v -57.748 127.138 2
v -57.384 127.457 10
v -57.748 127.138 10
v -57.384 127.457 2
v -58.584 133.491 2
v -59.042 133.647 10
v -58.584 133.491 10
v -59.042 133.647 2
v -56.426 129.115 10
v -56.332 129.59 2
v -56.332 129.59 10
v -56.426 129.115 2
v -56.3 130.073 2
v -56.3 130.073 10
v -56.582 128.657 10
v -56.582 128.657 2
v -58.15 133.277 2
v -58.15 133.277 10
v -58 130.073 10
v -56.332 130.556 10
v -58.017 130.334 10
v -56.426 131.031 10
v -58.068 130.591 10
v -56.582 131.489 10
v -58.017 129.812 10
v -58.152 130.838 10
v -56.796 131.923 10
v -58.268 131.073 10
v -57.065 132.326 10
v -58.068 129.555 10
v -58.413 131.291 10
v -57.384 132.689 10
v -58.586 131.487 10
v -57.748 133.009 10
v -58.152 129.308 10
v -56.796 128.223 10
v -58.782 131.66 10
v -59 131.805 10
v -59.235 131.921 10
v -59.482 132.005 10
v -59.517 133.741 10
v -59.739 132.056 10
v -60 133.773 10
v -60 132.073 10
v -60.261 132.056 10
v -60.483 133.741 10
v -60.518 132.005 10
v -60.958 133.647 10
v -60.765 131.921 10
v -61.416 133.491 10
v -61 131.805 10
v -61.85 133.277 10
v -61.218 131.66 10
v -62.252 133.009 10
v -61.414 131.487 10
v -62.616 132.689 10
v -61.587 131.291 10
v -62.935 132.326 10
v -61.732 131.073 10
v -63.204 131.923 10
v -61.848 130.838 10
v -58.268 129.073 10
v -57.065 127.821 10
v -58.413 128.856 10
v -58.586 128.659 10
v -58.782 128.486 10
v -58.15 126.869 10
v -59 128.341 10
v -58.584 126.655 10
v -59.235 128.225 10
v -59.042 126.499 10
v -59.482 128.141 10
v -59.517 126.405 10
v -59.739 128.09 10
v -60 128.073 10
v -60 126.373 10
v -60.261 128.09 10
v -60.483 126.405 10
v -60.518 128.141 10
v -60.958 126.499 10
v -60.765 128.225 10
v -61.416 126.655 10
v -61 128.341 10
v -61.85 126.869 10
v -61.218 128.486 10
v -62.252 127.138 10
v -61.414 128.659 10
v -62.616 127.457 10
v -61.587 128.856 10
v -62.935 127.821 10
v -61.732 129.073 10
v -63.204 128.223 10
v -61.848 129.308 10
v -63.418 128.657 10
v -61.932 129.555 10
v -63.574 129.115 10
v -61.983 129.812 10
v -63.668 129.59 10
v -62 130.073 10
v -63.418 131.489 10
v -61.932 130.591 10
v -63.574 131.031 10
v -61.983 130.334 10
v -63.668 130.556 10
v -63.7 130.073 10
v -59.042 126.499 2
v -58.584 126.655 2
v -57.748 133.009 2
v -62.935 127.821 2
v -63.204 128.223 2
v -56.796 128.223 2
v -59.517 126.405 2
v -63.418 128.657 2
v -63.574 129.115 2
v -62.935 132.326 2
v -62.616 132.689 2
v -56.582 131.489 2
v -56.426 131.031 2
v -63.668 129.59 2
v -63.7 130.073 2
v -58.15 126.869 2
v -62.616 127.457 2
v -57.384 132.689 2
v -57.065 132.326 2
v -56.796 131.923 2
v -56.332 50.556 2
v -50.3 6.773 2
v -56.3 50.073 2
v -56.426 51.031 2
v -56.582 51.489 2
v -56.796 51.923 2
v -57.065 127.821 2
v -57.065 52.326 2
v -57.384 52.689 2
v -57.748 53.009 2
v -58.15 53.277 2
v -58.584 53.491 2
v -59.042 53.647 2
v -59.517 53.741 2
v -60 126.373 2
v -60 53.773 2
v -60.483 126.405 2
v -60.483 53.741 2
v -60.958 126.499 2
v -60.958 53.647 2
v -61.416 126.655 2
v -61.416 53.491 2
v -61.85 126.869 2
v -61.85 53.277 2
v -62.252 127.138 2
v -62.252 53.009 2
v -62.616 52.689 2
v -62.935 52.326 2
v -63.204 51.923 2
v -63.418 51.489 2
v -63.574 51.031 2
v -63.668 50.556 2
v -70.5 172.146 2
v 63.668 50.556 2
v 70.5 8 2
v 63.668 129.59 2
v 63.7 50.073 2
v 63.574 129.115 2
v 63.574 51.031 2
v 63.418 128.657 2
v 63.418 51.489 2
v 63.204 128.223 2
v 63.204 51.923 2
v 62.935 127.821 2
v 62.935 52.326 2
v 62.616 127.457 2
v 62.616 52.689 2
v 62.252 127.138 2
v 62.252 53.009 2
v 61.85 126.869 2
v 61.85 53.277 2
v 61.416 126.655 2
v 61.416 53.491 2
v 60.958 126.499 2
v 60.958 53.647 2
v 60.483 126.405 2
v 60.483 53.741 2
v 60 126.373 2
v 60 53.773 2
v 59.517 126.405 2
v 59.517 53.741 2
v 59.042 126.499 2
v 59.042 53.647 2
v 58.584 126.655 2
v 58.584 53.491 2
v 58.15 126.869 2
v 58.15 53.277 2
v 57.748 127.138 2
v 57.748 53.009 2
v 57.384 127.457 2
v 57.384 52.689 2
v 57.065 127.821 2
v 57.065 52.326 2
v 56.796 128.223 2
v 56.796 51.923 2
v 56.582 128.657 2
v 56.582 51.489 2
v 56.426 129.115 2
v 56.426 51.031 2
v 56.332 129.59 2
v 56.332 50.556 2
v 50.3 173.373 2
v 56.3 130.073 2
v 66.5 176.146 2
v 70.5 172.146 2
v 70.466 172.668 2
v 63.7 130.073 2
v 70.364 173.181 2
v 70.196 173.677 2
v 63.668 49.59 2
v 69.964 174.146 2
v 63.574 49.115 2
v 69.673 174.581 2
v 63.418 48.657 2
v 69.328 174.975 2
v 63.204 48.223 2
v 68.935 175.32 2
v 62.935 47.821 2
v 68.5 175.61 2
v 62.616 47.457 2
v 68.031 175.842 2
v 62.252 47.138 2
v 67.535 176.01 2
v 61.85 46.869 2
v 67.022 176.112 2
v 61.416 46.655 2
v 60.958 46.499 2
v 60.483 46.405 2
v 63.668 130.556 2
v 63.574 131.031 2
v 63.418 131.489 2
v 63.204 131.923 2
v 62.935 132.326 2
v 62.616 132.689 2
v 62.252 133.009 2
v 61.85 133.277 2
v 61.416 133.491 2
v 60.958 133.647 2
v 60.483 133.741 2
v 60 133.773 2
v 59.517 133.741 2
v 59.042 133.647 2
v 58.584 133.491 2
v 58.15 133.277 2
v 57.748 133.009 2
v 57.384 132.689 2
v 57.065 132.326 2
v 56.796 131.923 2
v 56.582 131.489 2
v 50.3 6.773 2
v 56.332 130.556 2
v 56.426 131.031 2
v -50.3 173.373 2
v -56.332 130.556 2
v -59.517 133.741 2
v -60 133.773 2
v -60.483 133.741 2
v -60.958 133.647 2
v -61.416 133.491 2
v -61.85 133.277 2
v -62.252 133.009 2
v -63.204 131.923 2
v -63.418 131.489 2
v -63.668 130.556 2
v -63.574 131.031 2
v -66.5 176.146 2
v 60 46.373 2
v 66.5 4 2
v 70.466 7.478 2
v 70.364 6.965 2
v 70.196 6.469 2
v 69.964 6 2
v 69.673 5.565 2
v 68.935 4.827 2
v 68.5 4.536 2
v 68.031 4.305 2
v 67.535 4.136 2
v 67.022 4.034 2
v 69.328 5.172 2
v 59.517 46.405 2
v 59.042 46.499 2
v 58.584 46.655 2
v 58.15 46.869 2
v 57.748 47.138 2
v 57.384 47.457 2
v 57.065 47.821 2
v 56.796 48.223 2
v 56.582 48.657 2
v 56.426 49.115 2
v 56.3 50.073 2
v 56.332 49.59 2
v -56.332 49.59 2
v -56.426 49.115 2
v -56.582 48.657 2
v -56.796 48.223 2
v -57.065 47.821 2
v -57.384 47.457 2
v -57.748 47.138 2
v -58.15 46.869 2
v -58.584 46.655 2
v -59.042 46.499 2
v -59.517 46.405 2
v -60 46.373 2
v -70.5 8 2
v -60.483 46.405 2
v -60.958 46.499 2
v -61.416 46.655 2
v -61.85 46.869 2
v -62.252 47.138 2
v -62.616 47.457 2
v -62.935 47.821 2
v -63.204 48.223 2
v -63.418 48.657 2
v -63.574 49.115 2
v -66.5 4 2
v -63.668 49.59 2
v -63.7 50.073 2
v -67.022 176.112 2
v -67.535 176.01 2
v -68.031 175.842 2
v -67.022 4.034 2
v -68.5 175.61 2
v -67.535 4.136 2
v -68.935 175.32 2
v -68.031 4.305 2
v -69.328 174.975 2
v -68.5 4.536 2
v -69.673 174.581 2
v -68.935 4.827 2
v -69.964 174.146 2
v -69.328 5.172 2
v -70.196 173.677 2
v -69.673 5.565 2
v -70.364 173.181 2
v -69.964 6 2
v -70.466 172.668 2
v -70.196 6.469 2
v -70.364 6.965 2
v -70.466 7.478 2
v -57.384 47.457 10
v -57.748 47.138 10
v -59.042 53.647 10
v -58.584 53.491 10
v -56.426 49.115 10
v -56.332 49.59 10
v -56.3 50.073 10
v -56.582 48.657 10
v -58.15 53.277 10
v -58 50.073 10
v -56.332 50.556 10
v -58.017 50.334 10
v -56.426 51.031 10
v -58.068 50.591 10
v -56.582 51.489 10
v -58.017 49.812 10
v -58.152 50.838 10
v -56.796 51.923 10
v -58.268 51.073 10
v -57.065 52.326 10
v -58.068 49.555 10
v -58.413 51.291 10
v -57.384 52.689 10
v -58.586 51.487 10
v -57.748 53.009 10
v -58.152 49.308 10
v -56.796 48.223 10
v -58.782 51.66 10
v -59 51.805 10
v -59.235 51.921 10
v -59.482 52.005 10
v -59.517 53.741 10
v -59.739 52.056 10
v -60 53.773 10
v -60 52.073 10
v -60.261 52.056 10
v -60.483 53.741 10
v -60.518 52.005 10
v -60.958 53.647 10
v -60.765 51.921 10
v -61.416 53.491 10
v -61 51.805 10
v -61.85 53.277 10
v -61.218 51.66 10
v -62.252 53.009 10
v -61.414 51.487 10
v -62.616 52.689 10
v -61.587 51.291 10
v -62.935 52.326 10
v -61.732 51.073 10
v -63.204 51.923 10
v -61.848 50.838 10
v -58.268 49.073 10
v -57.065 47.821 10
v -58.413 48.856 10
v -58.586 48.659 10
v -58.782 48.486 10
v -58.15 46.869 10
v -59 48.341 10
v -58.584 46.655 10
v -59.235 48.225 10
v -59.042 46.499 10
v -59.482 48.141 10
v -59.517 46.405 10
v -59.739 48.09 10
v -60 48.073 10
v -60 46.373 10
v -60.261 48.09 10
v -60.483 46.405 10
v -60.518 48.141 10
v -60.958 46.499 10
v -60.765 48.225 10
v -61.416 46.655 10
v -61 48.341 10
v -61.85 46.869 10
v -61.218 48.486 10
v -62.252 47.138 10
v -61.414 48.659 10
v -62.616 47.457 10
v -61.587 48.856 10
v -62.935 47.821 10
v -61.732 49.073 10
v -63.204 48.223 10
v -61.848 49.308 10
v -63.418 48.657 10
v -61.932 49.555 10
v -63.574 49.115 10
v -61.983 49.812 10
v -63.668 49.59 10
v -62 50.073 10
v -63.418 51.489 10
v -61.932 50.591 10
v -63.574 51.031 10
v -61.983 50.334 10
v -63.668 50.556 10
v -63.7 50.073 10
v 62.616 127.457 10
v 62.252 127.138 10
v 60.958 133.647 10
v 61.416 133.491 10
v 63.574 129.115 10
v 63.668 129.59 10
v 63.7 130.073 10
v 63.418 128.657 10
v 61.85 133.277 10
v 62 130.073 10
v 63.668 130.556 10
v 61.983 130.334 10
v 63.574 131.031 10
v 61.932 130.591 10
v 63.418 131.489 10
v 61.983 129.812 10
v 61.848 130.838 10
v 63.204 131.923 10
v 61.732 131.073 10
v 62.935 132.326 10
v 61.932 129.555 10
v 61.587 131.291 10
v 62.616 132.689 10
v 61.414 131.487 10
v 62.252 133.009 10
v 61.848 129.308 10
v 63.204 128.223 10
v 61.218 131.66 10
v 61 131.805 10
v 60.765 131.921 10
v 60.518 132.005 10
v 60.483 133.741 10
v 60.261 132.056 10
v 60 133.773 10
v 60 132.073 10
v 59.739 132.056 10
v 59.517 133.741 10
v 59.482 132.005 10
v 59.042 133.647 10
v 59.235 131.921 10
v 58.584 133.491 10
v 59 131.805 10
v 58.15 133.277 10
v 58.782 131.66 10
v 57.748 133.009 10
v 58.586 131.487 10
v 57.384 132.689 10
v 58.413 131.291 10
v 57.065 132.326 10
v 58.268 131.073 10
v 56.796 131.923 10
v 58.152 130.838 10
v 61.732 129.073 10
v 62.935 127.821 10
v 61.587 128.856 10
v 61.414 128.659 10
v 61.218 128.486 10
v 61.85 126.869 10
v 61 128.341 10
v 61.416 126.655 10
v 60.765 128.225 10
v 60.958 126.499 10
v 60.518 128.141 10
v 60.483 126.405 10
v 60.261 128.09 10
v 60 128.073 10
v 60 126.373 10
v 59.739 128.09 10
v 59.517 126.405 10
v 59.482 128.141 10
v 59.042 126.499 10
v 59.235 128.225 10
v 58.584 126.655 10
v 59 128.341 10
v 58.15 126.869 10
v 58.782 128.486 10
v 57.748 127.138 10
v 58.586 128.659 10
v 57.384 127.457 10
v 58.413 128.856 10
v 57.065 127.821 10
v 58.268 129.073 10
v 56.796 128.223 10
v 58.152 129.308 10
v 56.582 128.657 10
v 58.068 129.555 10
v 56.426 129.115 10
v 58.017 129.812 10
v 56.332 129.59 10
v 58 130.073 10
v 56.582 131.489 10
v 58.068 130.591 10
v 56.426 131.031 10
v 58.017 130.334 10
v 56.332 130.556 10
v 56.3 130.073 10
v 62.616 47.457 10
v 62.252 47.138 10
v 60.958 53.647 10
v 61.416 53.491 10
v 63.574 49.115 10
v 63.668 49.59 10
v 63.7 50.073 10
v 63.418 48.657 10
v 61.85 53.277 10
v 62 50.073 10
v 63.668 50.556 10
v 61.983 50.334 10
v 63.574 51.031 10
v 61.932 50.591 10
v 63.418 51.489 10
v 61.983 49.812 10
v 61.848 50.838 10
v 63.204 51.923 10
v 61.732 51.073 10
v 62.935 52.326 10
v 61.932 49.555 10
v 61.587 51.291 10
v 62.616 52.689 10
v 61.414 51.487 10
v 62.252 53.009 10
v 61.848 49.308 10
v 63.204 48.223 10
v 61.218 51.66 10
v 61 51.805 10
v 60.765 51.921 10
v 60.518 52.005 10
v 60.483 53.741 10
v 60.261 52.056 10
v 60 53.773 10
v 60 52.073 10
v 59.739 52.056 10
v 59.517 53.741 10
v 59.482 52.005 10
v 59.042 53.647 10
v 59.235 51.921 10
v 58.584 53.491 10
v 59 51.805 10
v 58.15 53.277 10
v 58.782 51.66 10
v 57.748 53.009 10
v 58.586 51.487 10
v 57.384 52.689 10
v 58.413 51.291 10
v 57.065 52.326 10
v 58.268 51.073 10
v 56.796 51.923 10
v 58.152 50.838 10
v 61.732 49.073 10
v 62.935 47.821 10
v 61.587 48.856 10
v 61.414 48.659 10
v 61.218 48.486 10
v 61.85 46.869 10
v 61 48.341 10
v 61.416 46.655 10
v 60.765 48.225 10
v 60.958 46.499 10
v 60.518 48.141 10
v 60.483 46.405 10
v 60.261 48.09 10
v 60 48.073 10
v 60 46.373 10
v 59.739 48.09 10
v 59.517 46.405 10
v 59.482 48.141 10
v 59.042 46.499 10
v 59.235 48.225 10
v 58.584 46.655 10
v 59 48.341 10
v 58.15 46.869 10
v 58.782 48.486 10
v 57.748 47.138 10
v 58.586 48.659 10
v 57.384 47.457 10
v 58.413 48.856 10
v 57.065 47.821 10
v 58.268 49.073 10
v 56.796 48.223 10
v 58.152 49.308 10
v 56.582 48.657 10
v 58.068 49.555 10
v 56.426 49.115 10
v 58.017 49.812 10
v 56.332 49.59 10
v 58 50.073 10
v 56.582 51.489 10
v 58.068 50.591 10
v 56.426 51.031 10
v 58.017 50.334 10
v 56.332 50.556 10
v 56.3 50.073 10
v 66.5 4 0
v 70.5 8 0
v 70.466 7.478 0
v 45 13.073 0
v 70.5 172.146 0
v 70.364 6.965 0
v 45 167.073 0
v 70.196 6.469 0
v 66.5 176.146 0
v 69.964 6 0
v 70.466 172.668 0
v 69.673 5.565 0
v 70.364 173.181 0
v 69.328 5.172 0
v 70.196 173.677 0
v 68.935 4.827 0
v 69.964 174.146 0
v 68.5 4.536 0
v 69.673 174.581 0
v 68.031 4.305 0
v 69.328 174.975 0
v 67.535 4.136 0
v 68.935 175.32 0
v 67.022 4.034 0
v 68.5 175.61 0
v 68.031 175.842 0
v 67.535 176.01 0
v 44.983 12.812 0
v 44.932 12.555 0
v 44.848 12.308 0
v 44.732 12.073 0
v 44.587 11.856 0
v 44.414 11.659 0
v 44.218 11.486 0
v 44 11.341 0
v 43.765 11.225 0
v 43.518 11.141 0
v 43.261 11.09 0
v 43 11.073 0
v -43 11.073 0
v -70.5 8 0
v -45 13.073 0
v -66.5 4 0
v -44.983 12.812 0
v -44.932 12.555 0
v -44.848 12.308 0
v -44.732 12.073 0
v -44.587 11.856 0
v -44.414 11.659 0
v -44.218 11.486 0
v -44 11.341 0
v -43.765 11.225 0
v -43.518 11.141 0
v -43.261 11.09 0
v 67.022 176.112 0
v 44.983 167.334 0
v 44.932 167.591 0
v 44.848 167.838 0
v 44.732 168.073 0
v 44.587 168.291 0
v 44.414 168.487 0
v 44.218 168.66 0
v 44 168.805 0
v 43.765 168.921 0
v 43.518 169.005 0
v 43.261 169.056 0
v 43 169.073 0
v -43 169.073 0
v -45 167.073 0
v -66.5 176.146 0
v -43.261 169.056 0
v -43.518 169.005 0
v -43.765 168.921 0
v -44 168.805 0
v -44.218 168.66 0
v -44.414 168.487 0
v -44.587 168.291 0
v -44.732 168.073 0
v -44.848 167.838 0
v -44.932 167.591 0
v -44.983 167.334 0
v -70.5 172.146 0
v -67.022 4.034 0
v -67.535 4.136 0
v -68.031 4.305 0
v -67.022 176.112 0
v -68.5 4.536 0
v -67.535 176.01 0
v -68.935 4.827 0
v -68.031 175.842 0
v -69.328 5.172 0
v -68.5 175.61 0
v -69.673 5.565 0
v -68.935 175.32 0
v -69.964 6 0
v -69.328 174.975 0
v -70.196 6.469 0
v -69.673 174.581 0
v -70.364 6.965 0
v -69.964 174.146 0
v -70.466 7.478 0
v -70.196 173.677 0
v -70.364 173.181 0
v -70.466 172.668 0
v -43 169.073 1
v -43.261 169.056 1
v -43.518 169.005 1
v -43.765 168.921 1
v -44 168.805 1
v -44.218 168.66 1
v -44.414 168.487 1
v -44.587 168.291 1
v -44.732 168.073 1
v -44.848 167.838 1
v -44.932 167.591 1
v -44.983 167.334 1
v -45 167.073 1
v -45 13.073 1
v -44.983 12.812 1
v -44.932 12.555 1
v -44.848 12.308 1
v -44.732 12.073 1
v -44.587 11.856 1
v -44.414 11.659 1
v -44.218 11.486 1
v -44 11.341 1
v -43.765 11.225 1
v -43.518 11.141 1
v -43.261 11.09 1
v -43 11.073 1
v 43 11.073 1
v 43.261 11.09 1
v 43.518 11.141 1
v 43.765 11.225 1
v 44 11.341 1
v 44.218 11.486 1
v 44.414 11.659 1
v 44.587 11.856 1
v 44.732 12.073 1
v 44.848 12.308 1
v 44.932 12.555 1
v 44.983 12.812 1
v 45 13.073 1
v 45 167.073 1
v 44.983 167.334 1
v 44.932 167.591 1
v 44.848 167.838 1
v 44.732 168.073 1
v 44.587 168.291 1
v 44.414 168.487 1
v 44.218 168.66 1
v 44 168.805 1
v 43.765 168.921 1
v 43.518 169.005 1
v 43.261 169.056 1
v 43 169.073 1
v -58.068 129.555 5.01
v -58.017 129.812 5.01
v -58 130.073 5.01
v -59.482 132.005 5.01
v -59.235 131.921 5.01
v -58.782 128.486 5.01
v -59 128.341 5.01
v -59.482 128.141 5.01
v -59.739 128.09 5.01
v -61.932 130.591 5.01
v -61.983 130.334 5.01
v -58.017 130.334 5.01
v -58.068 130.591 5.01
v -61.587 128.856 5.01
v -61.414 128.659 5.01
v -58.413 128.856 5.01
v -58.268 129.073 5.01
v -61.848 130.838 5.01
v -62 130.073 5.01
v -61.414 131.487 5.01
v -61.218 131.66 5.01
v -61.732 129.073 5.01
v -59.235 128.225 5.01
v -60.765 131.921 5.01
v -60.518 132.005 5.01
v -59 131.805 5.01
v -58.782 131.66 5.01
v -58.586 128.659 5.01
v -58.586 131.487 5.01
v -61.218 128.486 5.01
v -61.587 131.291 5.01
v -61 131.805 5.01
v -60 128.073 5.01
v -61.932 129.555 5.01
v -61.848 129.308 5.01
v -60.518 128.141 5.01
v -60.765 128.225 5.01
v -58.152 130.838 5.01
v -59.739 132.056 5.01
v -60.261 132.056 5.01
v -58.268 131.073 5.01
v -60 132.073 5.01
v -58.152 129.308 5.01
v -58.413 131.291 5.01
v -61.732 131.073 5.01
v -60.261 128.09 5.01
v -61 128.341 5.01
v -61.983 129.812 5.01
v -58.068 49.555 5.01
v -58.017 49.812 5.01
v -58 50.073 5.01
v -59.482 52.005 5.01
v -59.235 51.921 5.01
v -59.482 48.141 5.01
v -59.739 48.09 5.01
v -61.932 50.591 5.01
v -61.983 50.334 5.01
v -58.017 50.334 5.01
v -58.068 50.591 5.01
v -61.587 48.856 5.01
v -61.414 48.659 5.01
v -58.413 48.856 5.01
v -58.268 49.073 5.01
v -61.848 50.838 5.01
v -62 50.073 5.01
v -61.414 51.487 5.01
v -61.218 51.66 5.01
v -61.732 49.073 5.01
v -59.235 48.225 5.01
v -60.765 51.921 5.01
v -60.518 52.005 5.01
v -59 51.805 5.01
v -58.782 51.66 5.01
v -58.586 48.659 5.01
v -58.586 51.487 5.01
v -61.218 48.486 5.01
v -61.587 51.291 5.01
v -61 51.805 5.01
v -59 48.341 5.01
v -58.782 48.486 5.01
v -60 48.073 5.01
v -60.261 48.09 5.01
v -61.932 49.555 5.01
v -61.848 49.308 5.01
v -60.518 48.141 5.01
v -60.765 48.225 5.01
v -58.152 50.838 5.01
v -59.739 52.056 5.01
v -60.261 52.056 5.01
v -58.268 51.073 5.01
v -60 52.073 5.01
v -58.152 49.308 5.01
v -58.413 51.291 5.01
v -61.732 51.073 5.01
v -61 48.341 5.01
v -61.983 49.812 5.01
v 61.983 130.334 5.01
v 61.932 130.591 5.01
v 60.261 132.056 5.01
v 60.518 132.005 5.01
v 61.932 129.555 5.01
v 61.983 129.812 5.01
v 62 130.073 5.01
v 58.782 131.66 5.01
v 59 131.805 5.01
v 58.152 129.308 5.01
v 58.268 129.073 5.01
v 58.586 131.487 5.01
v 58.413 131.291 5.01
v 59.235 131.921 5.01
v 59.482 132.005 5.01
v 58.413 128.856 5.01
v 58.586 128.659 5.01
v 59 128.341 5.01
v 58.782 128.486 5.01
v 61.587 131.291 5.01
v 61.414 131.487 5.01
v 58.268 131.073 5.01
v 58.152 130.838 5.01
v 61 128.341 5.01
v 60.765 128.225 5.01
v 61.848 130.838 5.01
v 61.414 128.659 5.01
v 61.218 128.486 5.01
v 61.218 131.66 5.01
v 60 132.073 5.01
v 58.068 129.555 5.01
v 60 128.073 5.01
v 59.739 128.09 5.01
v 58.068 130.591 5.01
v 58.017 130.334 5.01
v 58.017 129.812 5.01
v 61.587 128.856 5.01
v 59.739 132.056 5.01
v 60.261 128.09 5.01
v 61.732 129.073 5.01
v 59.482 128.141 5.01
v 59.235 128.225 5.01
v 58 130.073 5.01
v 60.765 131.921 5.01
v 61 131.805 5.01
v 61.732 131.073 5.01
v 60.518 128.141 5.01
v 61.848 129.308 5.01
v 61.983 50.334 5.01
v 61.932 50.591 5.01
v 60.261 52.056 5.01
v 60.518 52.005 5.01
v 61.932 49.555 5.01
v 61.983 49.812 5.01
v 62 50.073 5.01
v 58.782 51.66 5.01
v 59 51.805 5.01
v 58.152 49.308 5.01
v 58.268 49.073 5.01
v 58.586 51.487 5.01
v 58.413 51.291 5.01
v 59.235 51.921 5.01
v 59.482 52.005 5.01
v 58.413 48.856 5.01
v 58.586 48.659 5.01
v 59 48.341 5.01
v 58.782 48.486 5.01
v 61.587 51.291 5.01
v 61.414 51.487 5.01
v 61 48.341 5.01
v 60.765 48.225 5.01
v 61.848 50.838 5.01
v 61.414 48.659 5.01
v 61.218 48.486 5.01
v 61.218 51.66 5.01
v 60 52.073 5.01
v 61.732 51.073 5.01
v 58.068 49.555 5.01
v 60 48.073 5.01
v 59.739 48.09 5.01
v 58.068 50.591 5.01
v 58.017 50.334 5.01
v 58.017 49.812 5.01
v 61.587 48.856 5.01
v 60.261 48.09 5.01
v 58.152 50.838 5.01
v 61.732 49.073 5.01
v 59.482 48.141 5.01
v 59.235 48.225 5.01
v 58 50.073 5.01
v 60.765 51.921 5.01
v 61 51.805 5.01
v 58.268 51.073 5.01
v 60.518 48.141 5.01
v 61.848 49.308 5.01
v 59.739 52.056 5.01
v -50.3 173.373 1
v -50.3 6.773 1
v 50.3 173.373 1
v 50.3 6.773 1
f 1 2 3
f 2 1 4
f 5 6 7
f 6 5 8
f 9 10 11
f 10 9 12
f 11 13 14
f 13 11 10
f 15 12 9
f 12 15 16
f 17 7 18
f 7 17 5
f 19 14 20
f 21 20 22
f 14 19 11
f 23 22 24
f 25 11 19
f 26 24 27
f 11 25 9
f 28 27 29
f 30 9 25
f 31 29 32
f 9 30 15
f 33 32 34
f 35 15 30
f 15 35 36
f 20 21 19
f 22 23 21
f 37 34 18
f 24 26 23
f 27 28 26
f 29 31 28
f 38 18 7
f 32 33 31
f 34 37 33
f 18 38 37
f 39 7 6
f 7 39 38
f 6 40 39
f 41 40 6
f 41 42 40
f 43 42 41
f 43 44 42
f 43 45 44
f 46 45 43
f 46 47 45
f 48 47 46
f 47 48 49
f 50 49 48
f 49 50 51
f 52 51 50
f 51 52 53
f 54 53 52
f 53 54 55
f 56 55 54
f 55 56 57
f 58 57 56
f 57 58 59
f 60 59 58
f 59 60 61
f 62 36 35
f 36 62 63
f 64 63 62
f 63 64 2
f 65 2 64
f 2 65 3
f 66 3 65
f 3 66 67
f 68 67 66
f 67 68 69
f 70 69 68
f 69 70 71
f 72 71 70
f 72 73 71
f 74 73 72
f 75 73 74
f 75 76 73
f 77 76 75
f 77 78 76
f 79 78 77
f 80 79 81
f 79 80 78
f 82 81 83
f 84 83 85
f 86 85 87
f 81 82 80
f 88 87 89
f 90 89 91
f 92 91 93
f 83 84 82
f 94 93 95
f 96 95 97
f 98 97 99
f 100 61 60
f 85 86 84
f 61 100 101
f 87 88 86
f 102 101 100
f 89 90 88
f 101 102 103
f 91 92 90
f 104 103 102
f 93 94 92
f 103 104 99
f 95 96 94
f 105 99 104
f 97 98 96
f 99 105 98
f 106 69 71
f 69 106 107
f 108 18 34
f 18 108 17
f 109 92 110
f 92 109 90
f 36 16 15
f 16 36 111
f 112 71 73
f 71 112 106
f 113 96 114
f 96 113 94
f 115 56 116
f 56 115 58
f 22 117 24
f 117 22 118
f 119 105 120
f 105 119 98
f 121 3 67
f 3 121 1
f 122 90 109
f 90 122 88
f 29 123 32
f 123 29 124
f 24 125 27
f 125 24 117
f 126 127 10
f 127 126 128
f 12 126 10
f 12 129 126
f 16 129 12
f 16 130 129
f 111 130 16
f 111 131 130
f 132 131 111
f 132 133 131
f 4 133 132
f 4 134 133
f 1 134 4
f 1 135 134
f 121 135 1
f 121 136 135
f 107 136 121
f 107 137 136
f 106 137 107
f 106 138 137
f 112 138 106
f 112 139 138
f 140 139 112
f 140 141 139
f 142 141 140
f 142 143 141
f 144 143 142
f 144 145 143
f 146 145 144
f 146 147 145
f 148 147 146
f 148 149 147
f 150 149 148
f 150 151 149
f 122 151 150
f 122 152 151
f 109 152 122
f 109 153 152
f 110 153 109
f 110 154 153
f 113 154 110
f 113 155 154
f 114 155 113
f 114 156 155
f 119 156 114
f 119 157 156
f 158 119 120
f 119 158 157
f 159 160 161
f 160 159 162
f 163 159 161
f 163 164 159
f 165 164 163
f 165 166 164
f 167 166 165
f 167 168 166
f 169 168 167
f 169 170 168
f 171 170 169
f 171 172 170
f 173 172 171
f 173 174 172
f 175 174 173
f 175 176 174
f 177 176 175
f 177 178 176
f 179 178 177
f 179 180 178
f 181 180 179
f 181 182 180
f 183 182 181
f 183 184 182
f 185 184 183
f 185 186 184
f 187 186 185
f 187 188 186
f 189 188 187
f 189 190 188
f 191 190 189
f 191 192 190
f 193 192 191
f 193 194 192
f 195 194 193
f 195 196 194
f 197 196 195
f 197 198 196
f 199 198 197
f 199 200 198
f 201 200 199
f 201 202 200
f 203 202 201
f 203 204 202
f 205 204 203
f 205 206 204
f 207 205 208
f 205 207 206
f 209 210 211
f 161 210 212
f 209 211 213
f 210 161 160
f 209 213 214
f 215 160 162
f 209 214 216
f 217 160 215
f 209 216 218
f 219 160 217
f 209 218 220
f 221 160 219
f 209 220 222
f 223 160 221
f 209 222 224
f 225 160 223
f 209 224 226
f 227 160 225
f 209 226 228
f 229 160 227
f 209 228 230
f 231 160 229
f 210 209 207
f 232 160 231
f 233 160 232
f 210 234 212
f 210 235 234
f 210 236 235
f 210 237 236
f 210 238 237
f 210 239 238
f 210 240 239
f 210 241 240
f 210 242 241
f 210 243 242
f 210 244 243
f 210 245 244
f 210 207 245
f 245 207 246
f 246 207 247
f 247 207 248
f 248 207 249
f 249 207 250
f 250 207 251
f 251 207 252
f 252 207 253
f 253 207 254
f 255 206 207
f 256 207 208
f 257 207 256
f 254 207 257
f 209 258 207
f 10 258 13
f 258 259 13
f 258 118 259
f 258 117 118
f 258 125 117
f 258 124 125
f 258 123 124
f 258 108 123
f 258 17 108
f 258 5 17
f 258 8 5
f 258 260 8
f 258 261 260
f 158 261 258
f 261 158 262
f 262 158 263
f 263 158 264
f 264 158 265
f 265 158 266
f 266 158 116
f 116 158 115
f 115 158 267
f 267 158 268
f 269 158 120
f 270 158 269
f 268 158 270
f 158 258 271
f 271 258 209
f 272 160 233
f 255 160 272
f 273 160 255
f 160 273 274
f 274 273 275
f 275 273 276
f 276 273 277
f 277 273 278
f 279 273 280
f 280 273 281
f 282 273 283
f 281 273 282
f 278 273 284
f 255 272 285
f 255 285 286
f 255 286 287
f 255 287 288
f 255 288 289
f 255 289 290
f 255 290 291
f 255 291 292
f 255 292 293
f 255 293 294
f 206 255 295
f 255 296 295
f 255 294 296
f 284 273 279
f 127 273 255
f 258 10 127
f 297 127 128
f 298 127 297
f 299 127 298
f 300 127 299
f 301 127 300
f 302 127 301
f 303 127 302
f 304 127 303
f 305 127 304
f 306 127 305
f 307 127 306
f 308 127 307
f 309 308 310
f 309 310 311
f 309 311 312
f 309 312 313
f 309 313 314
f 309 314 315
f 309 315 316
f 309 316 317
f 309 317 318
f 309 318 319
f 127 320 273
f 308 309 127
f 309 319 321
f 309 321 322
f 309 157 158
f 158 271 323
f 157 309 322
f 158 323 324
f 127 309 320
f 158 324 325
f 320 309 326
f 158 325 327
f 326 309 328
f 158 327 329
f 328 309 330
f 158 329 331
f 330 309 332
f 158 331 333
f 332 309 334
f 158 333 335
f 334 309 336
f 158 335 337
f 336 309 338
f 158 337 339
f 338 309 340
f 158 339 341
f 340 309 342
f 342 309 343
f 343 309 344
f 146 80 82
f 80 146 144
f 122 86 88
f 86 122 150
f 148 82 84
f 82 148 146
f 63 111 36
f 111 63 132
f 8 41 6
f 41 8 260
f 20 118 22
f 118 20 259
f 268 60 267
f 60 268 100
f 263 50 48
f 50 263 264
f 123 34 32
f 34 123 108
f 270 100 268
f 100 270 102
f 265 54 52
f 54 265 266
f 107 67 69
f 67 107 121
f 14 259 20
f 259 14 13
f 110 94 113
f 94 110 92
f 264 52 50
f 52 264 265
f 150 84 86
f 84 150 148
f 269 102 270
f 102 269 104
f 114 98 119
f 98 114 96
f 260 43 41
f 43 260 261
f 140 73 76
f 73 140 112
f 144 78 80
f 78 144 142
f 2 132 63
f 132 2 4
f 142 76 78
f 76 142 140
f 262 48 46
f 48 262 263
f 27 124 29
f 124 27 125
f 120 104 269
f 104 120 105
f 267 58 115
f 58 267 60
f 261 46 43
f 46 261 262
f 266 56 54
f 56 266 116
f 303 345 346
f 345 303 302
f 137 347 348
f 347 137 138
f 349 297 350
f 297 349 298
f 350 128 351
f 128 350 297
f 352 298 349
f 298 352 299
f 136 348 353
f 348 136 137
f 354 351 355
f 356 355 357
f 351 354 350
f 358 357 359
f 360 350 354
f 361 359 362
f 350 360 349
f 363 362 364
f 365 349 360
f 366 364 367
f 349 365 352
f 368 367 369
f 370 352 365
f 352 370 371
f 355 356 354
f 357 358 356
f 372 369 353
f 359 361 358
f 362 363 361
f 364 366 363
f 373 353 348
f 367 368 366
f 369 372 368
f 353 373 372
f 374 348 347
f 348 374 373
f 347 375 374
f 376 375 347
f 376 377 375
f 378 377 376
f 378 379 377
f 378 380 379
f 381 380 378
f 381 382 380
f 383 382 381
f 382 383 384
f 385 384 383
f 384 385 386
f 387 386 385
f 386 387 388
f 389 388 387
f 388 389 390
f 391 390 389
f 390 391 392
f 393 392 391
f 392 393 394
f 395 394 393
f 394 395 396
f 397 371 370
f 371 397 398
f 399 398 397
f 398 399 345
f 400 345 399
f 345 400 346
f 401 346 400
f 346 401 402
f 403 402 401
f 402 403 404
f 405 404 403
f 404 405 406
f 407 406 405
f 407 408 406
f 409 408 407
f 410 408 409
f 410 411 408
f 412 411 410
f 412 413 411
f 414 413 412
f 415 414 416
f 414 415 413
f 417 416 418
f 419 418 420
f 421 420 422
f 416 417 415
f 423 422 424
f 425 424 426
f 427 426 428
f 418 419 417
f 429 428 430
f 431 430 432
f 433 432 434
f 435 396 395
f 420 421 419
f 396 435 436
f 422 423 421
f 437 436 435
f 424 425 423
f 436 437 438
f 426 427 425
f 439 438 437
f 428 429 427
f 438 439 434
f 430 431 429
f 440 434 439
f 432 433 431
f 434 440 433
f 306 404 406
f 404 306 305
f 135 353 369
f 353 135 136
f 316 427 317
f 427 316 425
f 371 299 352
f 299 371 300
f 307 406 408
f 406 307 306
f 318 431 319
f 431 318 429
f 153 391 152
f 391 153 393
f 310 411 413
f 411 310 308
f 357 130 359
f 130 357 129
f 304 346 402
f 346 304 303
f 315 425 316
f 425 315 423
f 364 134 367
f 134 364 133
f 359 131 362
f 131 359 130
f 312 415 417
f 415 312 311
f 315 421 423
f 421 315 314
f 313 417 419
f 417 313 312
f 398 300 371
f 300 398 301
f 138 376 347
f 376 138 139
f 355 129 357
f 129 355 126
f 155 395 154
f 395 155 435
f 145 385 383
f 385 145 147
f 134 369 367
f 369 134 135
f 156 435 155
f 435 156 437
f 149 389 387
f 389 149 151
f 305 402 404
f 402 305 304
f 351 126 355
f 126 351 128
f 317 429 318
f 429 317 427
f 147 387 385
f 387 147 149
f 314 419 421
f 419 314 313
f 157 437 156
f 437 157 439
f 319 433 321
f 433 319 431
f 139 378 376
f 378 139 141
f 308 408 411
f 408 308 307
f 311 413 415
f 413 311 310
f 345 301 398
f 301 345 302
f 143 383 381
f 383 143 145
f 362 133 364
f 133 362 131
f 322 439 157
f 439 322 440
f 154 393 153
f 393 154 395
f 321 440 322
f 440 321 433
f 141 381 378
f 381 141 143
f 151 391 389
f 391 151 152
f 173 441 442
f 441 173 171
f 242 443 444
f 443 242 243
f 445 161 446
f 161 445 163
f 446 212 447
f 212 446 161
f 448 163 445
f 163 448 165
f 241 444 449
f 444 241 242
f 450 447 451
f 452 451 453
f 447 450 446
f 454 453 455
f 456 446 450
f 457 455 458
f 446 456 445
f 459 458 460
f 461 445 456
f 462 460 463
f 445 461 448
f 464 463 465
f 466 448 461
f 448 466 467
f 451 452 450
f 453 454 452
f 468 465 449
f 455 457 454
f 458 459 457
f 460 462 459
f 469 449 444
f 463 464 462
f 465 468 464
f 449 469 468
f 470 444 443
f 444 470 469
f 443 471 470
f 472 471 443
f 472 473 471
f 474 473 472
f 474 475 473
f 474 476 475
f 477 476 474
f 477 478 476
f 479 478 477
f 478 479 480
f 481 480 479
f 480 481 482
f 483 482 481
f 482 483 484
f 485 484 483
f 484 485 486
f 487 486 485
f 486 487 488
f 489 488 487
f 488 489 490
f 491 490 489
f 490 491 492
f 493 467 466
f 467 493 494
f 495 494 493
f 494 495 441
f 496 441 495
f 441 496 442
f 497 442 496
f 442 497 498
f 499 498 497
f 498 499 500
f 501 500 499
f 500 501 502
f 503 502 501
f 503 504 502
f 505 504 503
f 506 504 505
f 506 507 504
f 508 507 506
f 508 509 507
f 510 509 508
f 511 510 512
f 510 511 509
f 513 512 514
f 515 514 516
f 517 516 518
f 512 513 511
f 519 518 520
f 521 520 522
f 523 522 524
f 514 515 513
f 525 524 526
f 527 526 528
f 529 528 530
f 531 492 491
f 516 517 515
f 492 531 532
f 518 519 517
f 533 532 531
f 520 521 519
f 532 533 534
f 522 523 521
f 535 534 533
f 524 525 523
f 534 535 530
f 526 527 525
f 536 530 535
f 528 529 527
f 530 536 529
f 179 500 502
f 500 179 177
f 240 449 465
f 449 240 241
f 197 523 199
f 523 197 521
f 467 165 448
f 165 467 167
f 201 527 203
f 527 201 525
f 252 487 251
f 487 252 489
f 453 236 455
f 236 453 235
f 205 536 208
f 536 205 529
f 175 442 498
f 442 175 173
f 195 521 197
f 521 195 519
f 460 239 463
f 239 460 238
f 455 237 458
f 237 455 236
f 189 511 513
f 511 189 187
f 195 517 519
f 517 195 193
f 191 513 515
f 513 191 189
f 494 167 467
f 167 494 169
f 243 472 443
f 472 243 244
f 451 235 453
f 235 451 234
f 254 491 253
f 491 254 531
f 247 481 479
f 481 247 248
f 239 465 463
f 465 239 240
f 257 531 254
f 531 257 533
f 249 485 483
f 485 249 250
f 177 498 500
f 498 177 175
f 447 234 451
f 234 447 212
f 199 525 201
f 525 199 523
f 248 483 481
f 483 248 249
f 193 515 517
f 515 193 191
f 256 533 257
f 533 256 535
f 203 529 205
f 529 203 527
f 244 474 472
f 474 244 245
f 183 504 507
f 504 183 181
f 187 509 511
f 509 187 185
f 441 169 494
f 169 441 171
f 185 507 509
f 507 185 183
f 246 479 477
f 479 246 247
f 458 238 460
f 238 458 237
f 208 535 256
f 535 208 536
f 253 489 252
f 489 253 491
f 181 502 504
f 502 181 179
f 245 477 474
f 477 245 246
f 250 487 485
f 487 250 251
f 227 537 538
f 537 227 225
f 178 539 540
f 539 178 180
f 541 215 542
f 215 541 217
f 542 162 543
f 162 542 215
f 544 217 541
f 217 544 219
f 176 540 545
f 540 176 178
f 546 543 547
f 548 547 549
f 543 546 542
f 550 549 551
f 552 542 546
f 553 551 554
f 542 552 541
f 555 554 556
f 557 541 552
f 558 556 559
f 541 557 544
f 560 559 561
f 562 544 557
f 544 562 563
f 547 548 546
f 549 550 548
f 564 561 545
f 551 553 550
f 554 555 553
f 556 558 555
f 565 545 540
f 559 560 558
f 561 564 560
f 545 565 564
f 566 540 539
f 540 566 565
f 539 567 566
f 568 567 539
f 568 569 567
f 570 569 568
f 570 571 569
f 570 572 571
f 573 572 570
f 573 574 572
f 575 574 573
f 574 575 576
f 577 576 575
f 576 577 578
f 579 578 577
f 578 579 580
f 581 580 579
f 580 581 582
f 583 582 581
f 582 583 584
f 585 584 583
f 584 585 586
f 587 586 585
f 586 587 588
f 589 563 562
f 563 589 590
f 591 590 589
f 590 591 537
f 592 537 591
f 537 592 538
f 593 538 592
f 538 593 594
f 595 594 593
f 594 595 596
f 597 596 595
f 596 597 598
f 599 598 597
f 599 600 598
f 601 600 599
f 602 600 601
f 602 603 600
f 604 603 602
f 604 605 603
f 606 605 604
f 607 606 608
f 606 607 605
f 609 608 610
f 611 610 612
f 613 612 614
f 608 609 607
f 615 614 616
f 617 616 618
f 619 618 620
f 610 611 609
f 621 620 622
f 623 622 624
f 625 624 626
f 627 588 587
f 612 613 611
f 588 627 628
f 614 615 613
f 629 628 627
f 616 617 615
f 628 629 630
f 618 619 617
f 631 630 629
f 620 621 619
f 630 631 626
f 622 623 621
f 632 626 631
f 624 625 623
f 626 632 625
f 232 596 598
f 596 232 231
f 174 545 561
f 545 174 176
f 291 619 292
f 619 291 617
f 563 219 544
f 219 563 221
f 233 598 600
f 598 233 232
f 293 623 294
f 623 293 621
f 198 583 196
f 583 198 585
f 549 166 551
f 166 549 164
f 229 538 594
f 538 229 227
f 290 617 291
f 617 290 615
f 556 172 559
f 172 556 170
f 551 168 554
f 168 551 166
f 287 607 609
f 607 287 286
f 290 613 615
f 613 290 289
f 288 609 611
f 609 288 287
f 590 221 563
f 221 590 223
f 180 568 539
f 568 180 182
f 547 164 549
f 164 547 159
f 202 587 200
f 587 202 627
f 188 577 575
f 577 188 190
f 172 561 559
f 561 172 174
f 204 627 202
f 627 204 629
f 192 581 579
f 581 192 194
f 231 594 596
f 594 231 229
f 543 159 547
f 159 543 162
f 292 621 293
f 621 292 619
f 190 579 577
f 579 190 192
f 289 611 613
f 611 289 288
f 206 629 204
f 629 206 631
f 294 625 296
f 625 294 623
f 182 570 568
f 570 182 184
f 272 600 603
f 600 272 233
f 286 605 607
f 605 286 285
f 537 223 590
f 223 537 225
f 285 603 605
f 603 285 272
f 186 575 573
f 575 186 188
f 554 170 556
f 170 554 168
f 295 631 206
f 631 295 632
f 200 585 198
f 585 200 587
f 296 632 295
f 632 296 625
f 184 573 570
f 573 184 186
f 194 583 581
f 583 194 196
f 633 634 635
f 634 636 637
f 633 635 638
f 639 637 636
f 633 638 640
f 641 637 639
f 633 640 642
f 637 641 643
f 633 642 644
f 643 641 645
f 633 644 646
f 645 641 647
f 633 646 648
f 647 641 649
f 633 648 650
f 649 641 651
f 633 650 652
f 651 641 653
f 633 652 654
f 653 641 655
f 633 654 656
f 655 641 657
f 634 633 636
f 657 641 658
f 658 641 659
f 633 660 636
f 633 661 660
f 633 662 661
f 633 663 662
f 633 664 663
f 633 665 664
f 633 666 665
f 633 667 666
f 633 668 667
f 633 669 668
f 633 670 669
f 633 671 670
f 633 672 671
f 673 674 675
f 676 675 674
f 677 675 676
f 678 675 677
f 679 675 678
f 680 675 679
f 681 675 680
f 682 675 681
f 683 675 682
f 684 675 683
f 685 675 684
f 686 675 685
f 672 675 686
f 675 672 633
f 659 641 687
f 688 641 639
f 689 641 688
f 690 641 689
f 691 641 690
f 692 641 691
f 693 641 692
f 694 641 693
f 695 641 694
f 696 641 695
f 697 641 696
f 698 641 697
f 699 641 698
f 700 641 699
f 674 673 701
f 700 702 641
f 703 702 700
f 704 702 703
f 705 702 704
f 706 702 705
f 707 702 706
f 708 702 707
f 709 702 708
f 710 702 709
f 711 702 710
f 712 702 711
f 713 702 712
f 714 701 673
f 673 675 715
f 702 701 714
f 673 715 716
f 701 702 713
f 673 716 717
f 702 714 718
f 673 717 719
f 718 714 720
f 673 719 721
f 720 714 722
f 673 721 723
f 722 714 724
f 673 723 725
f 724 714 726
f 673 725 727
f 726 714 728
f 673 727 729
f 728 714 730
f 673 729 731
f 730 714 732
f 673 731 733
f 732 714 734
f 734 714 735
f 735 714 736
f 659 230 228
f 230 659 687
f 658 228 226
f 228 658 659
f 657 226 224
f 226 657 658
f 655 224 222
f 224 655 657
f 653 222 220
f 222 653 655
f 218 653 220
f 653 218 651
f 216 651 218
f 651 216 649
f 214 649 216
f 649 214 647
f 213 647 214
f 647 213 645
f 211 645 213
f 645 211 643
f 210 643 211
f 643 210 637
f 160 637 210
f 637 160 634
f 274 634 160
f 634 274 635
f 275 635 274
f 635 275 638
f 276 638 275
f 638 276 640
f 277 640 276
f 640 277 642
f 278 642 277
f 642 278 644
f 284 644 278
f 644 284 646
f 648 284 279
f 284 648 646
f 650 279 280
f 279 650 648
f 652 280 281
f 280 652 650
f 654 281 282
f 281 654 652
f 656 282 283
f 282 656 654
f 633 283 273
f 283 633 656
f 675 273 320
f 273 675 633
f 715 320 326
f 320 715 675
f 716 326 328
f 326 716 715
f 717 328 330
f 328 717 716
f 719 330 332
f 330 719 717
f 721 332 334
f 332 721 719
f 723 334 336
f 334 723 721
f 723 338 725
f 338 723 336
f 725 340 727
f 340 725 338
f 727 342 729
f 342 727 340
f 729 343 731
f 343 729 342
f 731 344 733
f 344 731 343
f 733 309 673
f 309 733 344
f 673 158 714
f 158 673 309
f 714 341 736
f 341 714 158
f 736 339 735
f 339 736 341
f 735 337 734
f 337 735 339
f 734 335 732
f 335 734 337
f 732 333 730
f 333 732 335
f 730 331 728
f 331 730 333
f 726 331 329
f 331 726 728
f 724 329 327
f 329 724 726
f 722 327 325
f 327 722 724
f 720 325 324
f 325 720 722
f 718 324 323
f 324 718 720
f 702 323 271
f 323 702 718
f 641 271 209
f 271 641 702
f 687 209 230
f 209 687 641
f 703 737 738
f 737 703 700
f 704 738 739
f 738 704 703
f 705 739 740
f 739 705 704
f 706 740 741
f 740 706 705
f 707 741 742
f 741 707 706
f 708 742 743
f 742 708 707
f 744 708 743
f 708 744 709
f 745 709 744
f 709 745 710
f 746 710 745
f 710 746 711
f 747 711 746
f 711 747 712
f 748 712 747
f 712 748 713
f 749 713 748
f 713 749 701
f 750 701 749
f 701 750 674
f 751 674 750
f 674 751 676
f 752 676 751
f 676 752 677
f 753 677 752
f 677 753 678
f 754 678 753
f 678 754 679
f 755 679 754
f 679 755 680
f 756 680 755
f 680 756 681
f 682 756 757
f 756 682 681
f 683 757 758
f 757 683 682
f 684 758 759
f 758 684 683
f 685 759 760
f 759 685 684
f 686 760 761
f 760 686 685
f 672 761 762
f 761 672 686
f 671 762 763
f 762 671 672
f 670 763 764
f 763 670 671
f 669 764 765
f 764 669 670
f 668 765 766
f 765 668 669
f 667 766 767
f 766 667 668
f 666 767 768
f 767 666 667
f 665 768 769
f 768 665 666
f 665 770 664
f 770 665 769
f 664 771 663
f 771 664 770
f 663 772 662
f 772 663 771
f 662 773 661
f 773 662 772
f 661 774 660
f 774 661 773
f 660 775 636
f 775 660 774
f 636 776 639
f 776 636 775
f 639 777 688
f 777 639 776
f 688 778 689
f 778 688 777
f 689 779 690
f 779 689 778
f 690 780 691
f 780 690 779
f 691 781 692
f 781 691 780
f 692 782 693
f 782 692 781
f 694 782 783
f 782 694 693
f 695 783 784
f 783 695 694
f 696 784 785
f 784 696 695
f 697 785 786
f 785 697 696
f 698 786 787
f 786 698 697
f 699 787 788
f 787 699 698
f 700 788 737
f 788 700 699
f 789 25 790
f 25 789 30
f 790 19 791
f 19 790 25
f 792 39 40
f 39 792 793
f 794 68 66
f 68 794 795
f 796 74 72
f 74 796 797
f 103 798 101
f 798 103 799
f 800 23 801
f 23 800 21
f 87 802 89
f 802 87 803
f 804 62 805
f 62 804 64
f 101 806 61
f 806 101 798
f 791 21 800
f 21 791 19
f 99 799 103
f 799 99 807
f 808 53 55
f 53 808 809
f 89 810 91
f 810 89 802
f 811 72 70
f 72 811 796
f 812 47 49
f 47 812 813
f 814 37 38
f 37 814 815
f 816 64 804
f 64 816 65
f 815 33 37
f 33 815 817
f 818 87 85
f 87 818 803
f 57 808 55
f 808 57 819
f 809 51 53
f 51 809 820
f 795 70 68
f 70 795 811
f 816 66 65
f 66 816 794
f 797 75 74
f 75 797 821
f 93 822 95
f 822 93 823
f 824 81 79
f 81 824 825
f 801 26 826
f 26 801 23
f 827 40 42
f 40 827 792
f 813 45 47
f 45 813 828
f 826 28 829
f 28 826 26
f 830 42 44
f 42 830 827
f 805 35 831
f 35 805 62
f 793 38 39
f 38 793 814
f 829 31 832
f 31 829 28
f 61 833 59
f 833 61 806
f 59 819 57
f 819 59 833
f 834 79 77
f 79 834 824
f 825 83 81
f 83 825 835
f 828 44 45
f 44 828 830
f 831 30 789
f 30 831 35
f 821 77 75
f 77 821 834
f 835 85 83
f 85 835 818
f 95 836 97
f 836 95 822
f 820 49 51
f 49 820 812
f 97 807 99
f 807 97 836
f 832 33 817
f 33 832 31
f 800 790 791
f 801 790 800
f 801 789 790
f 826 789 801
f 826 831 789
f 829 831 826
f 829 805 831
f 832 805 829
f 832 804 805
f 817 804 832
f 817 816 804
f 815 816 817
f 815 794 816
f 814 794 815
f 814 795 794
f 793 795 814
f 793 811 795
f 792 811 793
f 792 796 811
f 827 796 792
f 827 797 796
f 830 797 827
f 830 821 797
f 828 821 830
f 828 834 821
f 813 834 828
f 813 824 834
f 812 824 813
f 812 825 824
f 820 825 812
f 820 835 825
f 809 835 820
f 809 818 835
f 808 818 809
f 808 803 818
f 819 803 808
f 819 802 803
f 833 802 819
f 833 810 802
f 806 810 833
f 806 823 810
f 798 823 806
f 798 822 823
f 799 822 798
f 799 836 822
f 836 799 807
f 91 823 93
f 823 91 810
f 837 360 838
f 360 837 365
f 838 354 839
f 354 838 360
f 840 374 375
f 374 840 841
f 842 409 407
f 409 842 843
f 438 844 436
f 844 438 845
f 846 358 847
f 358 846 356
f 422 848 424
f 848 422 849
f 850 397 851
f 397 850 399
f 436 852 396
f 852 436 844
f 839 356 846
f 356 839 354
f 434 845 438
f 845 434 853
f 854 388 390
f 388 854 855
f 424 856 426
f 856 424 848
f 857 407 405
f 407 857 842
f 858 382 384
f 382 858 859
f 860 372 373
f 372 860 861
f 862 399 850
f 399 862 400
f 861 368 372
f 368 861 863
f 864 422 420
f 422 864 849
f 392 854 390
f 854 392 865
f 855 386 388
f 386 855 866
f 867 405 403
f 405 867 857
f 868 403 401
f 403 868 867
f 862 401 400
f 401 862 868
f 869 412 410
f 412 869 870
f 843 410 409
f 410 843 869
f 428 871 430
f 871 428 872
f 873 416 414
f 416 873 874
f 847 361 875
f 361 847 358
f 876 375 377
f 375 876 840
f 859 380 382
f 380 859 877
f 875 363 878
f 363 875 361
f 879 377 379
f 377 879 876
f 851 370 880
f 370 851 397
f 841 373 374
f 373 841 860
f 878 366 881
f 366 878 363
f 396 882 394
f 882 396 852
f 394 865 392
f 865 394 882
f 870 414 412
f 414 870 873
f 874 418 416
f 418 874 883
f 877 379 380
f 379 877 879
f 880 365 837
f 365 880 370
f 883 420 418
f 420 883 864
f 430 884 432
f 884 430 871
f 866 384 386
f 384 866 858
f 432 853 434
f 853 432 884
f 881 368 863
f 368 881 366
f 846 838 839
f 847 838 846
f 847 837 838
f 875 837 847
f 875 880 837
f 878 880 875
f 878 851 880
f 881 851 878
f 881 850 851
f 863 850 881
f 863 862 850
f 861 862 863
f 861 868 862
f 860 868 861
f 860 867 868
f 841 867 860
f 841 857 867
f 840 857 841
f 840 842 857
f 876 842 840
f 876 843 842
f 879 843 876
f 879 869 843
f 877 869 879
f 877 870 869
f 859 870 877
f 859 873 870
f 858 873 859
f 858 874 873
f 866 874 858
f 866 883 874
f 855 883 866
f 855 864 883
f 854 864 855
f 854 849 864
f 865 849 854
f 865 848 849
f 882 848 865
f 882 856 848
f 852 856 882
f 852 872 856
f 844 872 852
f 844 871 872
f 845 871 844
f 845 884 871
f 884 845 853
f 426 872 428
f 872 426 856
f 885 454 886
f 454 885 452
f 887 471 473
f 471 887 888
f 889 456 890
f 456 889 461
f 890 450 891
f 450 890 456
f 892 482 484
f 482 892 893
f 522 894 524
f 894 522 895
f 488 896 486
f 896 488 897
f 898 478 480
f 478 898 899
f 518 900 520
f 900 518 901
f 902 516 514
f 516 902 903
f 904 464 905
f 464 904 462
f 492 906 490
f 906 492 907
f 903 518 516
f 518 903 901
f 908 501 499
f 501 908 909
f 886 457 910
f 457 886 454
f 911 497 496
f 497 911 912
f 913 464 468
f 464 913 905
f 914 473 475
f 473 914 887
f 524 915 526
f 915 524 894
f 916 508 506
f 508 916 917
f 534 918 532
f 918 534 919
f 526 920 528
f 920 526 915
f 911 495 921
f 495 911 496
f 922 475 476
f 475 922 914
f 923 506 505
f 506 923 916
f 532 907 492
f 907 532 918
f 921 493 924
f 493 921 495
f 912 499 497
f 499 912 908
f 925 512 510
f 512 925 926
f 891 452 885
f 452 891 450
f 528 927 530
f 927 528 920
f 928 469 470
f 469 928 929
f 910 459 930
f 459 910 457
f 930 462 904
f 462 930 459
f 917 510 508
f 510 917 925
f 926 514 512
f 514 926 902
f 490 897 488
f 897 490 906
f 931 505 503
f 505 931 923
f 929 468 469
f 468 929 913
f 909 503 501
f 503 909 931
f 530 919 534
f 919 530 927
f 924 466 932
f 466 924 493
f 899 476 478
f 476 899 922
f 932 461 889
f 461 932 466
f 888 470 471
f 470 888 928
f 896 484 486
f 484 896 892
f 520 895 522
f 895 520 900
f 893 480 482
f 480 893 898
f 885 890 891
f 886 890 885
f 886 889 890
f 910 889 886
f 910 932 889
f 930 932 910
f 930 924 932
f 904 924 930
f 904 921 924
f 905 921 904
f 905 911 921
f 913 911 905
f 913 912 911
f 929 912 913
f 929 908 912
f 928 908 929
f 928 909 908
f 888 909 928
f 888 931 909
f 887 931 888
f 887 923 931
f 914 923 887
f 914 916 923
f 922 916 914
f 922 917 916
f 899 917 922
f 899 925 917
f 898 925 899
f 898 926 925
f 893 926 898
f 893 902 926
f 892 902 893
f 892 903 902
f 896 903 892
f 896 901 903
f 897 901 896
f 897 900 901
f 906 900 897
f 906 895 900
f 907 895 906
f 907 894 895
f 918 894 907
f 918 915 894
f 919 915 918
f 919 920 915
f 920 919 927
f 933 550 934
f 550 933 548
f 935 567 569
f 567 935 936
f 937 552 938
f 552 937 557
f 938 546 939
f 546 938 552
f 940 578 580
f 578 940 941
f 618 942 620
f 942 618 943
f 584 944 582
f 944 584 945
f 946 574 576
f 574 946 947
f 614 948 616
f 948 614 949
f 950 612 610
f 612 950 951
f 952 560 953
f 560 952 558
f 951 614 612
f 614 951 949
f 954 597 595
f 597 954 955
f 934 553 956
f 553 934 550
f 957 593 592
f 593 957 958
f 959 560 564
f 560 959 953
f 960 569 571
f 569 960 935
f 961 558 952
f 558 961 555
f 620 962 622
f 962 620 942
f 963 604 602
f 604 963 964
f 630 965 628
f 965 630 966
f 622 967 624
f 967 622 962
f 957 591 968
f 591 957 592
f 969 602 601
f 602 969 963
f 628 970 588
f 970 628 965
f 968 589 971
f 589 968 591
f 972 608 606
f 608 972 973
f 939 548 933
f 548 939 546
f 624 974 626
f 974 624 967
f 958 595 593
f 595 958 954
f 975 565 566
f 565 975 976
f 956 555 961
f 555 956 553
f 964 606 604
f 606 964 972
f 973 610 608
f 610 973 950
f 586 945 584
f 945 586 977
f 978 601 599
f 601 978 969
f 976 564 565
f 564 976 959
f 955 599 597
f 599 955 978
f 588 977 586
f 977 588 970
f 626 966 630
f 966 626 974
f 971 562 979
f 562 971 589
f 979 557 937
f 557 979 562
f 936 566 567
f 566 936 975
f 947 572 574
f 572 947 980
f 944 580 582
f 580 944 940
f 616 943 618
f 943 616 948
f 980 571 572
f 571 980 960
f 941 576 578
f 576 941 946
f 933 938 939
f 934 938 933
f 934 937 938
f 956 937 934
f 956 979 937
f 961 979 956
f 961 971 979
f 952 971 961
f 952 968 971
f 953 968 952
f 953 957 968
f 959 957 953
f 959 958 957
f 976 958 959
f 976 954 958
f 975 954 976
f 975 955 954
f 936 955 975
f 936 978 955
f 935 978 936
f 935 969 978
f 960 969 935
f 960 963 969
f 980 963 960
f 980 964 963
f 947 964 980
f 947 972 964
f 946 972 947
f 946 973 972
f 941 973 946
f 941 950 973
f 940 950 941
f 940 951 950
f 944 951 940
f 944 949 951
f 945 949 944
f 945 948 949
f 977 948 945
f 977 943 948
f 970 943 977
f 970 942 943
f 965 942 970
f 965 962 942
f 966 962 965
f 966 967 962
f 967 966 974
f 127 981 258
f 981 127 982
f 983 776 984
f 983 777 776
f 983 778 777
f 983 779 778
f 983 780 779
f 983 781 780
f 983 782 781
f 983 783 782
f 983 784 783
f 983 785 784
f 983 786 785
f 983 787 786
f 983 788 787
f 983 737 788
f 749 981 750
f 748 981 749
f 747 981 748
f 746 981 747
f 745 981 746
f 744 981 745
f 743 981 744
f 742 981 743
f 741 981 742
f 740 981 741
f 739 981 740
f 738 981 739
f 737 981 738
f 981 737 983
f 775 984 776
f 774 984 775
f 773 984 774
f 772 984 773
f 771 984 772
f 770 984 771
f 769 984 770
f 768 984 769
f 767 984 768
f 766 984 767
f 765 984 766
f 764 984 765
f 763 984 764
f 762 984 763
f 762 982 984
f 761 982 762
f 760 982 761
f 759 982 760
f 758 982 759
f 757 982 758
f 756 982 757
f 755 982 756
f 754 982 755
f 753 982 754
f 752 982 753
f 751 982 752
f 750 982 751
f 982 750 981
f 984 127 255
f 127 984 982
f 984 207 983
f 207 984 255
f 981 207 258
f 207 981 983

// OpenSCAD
// Speakerdeck case: the display frame.
// It prints with the front face on the bed.
// Open this file to see the part in its position for the print bed.

include <common.scad>

// Frame of the display, in the local frame of the upper front. The front face is at Z = 0.
// A pocket in the rear face holds the edge of the LCD module.
module frame() {
  difference() {
    union() {
      translate([0, 0, -frame_t]) linear_extrude(frame_t, convexity = 10) difference() {
        frame_outline(slope_l);
        view_rect();
      }
      for (b = frame_boss_uv) translate([b[0], b[1], -frame_t - frame_boss_l]) cylinder(d = 7.4, h = frame_boss_l);
    }
    translate([0, 0, -frame_t - 1]) linear_extrude(frame_t - glass_in + 1) lcd_rect(gap);
    for (b = frame_boss_uv)
      translate([b[0], b[1], -frame_t - frame_boss_l - 0.01]) cylinder(d = insert_d, h = insert_l + 1);
  }
}

translate([0, slope_l, 0]) rotate([180, 0, 0]) frame();
